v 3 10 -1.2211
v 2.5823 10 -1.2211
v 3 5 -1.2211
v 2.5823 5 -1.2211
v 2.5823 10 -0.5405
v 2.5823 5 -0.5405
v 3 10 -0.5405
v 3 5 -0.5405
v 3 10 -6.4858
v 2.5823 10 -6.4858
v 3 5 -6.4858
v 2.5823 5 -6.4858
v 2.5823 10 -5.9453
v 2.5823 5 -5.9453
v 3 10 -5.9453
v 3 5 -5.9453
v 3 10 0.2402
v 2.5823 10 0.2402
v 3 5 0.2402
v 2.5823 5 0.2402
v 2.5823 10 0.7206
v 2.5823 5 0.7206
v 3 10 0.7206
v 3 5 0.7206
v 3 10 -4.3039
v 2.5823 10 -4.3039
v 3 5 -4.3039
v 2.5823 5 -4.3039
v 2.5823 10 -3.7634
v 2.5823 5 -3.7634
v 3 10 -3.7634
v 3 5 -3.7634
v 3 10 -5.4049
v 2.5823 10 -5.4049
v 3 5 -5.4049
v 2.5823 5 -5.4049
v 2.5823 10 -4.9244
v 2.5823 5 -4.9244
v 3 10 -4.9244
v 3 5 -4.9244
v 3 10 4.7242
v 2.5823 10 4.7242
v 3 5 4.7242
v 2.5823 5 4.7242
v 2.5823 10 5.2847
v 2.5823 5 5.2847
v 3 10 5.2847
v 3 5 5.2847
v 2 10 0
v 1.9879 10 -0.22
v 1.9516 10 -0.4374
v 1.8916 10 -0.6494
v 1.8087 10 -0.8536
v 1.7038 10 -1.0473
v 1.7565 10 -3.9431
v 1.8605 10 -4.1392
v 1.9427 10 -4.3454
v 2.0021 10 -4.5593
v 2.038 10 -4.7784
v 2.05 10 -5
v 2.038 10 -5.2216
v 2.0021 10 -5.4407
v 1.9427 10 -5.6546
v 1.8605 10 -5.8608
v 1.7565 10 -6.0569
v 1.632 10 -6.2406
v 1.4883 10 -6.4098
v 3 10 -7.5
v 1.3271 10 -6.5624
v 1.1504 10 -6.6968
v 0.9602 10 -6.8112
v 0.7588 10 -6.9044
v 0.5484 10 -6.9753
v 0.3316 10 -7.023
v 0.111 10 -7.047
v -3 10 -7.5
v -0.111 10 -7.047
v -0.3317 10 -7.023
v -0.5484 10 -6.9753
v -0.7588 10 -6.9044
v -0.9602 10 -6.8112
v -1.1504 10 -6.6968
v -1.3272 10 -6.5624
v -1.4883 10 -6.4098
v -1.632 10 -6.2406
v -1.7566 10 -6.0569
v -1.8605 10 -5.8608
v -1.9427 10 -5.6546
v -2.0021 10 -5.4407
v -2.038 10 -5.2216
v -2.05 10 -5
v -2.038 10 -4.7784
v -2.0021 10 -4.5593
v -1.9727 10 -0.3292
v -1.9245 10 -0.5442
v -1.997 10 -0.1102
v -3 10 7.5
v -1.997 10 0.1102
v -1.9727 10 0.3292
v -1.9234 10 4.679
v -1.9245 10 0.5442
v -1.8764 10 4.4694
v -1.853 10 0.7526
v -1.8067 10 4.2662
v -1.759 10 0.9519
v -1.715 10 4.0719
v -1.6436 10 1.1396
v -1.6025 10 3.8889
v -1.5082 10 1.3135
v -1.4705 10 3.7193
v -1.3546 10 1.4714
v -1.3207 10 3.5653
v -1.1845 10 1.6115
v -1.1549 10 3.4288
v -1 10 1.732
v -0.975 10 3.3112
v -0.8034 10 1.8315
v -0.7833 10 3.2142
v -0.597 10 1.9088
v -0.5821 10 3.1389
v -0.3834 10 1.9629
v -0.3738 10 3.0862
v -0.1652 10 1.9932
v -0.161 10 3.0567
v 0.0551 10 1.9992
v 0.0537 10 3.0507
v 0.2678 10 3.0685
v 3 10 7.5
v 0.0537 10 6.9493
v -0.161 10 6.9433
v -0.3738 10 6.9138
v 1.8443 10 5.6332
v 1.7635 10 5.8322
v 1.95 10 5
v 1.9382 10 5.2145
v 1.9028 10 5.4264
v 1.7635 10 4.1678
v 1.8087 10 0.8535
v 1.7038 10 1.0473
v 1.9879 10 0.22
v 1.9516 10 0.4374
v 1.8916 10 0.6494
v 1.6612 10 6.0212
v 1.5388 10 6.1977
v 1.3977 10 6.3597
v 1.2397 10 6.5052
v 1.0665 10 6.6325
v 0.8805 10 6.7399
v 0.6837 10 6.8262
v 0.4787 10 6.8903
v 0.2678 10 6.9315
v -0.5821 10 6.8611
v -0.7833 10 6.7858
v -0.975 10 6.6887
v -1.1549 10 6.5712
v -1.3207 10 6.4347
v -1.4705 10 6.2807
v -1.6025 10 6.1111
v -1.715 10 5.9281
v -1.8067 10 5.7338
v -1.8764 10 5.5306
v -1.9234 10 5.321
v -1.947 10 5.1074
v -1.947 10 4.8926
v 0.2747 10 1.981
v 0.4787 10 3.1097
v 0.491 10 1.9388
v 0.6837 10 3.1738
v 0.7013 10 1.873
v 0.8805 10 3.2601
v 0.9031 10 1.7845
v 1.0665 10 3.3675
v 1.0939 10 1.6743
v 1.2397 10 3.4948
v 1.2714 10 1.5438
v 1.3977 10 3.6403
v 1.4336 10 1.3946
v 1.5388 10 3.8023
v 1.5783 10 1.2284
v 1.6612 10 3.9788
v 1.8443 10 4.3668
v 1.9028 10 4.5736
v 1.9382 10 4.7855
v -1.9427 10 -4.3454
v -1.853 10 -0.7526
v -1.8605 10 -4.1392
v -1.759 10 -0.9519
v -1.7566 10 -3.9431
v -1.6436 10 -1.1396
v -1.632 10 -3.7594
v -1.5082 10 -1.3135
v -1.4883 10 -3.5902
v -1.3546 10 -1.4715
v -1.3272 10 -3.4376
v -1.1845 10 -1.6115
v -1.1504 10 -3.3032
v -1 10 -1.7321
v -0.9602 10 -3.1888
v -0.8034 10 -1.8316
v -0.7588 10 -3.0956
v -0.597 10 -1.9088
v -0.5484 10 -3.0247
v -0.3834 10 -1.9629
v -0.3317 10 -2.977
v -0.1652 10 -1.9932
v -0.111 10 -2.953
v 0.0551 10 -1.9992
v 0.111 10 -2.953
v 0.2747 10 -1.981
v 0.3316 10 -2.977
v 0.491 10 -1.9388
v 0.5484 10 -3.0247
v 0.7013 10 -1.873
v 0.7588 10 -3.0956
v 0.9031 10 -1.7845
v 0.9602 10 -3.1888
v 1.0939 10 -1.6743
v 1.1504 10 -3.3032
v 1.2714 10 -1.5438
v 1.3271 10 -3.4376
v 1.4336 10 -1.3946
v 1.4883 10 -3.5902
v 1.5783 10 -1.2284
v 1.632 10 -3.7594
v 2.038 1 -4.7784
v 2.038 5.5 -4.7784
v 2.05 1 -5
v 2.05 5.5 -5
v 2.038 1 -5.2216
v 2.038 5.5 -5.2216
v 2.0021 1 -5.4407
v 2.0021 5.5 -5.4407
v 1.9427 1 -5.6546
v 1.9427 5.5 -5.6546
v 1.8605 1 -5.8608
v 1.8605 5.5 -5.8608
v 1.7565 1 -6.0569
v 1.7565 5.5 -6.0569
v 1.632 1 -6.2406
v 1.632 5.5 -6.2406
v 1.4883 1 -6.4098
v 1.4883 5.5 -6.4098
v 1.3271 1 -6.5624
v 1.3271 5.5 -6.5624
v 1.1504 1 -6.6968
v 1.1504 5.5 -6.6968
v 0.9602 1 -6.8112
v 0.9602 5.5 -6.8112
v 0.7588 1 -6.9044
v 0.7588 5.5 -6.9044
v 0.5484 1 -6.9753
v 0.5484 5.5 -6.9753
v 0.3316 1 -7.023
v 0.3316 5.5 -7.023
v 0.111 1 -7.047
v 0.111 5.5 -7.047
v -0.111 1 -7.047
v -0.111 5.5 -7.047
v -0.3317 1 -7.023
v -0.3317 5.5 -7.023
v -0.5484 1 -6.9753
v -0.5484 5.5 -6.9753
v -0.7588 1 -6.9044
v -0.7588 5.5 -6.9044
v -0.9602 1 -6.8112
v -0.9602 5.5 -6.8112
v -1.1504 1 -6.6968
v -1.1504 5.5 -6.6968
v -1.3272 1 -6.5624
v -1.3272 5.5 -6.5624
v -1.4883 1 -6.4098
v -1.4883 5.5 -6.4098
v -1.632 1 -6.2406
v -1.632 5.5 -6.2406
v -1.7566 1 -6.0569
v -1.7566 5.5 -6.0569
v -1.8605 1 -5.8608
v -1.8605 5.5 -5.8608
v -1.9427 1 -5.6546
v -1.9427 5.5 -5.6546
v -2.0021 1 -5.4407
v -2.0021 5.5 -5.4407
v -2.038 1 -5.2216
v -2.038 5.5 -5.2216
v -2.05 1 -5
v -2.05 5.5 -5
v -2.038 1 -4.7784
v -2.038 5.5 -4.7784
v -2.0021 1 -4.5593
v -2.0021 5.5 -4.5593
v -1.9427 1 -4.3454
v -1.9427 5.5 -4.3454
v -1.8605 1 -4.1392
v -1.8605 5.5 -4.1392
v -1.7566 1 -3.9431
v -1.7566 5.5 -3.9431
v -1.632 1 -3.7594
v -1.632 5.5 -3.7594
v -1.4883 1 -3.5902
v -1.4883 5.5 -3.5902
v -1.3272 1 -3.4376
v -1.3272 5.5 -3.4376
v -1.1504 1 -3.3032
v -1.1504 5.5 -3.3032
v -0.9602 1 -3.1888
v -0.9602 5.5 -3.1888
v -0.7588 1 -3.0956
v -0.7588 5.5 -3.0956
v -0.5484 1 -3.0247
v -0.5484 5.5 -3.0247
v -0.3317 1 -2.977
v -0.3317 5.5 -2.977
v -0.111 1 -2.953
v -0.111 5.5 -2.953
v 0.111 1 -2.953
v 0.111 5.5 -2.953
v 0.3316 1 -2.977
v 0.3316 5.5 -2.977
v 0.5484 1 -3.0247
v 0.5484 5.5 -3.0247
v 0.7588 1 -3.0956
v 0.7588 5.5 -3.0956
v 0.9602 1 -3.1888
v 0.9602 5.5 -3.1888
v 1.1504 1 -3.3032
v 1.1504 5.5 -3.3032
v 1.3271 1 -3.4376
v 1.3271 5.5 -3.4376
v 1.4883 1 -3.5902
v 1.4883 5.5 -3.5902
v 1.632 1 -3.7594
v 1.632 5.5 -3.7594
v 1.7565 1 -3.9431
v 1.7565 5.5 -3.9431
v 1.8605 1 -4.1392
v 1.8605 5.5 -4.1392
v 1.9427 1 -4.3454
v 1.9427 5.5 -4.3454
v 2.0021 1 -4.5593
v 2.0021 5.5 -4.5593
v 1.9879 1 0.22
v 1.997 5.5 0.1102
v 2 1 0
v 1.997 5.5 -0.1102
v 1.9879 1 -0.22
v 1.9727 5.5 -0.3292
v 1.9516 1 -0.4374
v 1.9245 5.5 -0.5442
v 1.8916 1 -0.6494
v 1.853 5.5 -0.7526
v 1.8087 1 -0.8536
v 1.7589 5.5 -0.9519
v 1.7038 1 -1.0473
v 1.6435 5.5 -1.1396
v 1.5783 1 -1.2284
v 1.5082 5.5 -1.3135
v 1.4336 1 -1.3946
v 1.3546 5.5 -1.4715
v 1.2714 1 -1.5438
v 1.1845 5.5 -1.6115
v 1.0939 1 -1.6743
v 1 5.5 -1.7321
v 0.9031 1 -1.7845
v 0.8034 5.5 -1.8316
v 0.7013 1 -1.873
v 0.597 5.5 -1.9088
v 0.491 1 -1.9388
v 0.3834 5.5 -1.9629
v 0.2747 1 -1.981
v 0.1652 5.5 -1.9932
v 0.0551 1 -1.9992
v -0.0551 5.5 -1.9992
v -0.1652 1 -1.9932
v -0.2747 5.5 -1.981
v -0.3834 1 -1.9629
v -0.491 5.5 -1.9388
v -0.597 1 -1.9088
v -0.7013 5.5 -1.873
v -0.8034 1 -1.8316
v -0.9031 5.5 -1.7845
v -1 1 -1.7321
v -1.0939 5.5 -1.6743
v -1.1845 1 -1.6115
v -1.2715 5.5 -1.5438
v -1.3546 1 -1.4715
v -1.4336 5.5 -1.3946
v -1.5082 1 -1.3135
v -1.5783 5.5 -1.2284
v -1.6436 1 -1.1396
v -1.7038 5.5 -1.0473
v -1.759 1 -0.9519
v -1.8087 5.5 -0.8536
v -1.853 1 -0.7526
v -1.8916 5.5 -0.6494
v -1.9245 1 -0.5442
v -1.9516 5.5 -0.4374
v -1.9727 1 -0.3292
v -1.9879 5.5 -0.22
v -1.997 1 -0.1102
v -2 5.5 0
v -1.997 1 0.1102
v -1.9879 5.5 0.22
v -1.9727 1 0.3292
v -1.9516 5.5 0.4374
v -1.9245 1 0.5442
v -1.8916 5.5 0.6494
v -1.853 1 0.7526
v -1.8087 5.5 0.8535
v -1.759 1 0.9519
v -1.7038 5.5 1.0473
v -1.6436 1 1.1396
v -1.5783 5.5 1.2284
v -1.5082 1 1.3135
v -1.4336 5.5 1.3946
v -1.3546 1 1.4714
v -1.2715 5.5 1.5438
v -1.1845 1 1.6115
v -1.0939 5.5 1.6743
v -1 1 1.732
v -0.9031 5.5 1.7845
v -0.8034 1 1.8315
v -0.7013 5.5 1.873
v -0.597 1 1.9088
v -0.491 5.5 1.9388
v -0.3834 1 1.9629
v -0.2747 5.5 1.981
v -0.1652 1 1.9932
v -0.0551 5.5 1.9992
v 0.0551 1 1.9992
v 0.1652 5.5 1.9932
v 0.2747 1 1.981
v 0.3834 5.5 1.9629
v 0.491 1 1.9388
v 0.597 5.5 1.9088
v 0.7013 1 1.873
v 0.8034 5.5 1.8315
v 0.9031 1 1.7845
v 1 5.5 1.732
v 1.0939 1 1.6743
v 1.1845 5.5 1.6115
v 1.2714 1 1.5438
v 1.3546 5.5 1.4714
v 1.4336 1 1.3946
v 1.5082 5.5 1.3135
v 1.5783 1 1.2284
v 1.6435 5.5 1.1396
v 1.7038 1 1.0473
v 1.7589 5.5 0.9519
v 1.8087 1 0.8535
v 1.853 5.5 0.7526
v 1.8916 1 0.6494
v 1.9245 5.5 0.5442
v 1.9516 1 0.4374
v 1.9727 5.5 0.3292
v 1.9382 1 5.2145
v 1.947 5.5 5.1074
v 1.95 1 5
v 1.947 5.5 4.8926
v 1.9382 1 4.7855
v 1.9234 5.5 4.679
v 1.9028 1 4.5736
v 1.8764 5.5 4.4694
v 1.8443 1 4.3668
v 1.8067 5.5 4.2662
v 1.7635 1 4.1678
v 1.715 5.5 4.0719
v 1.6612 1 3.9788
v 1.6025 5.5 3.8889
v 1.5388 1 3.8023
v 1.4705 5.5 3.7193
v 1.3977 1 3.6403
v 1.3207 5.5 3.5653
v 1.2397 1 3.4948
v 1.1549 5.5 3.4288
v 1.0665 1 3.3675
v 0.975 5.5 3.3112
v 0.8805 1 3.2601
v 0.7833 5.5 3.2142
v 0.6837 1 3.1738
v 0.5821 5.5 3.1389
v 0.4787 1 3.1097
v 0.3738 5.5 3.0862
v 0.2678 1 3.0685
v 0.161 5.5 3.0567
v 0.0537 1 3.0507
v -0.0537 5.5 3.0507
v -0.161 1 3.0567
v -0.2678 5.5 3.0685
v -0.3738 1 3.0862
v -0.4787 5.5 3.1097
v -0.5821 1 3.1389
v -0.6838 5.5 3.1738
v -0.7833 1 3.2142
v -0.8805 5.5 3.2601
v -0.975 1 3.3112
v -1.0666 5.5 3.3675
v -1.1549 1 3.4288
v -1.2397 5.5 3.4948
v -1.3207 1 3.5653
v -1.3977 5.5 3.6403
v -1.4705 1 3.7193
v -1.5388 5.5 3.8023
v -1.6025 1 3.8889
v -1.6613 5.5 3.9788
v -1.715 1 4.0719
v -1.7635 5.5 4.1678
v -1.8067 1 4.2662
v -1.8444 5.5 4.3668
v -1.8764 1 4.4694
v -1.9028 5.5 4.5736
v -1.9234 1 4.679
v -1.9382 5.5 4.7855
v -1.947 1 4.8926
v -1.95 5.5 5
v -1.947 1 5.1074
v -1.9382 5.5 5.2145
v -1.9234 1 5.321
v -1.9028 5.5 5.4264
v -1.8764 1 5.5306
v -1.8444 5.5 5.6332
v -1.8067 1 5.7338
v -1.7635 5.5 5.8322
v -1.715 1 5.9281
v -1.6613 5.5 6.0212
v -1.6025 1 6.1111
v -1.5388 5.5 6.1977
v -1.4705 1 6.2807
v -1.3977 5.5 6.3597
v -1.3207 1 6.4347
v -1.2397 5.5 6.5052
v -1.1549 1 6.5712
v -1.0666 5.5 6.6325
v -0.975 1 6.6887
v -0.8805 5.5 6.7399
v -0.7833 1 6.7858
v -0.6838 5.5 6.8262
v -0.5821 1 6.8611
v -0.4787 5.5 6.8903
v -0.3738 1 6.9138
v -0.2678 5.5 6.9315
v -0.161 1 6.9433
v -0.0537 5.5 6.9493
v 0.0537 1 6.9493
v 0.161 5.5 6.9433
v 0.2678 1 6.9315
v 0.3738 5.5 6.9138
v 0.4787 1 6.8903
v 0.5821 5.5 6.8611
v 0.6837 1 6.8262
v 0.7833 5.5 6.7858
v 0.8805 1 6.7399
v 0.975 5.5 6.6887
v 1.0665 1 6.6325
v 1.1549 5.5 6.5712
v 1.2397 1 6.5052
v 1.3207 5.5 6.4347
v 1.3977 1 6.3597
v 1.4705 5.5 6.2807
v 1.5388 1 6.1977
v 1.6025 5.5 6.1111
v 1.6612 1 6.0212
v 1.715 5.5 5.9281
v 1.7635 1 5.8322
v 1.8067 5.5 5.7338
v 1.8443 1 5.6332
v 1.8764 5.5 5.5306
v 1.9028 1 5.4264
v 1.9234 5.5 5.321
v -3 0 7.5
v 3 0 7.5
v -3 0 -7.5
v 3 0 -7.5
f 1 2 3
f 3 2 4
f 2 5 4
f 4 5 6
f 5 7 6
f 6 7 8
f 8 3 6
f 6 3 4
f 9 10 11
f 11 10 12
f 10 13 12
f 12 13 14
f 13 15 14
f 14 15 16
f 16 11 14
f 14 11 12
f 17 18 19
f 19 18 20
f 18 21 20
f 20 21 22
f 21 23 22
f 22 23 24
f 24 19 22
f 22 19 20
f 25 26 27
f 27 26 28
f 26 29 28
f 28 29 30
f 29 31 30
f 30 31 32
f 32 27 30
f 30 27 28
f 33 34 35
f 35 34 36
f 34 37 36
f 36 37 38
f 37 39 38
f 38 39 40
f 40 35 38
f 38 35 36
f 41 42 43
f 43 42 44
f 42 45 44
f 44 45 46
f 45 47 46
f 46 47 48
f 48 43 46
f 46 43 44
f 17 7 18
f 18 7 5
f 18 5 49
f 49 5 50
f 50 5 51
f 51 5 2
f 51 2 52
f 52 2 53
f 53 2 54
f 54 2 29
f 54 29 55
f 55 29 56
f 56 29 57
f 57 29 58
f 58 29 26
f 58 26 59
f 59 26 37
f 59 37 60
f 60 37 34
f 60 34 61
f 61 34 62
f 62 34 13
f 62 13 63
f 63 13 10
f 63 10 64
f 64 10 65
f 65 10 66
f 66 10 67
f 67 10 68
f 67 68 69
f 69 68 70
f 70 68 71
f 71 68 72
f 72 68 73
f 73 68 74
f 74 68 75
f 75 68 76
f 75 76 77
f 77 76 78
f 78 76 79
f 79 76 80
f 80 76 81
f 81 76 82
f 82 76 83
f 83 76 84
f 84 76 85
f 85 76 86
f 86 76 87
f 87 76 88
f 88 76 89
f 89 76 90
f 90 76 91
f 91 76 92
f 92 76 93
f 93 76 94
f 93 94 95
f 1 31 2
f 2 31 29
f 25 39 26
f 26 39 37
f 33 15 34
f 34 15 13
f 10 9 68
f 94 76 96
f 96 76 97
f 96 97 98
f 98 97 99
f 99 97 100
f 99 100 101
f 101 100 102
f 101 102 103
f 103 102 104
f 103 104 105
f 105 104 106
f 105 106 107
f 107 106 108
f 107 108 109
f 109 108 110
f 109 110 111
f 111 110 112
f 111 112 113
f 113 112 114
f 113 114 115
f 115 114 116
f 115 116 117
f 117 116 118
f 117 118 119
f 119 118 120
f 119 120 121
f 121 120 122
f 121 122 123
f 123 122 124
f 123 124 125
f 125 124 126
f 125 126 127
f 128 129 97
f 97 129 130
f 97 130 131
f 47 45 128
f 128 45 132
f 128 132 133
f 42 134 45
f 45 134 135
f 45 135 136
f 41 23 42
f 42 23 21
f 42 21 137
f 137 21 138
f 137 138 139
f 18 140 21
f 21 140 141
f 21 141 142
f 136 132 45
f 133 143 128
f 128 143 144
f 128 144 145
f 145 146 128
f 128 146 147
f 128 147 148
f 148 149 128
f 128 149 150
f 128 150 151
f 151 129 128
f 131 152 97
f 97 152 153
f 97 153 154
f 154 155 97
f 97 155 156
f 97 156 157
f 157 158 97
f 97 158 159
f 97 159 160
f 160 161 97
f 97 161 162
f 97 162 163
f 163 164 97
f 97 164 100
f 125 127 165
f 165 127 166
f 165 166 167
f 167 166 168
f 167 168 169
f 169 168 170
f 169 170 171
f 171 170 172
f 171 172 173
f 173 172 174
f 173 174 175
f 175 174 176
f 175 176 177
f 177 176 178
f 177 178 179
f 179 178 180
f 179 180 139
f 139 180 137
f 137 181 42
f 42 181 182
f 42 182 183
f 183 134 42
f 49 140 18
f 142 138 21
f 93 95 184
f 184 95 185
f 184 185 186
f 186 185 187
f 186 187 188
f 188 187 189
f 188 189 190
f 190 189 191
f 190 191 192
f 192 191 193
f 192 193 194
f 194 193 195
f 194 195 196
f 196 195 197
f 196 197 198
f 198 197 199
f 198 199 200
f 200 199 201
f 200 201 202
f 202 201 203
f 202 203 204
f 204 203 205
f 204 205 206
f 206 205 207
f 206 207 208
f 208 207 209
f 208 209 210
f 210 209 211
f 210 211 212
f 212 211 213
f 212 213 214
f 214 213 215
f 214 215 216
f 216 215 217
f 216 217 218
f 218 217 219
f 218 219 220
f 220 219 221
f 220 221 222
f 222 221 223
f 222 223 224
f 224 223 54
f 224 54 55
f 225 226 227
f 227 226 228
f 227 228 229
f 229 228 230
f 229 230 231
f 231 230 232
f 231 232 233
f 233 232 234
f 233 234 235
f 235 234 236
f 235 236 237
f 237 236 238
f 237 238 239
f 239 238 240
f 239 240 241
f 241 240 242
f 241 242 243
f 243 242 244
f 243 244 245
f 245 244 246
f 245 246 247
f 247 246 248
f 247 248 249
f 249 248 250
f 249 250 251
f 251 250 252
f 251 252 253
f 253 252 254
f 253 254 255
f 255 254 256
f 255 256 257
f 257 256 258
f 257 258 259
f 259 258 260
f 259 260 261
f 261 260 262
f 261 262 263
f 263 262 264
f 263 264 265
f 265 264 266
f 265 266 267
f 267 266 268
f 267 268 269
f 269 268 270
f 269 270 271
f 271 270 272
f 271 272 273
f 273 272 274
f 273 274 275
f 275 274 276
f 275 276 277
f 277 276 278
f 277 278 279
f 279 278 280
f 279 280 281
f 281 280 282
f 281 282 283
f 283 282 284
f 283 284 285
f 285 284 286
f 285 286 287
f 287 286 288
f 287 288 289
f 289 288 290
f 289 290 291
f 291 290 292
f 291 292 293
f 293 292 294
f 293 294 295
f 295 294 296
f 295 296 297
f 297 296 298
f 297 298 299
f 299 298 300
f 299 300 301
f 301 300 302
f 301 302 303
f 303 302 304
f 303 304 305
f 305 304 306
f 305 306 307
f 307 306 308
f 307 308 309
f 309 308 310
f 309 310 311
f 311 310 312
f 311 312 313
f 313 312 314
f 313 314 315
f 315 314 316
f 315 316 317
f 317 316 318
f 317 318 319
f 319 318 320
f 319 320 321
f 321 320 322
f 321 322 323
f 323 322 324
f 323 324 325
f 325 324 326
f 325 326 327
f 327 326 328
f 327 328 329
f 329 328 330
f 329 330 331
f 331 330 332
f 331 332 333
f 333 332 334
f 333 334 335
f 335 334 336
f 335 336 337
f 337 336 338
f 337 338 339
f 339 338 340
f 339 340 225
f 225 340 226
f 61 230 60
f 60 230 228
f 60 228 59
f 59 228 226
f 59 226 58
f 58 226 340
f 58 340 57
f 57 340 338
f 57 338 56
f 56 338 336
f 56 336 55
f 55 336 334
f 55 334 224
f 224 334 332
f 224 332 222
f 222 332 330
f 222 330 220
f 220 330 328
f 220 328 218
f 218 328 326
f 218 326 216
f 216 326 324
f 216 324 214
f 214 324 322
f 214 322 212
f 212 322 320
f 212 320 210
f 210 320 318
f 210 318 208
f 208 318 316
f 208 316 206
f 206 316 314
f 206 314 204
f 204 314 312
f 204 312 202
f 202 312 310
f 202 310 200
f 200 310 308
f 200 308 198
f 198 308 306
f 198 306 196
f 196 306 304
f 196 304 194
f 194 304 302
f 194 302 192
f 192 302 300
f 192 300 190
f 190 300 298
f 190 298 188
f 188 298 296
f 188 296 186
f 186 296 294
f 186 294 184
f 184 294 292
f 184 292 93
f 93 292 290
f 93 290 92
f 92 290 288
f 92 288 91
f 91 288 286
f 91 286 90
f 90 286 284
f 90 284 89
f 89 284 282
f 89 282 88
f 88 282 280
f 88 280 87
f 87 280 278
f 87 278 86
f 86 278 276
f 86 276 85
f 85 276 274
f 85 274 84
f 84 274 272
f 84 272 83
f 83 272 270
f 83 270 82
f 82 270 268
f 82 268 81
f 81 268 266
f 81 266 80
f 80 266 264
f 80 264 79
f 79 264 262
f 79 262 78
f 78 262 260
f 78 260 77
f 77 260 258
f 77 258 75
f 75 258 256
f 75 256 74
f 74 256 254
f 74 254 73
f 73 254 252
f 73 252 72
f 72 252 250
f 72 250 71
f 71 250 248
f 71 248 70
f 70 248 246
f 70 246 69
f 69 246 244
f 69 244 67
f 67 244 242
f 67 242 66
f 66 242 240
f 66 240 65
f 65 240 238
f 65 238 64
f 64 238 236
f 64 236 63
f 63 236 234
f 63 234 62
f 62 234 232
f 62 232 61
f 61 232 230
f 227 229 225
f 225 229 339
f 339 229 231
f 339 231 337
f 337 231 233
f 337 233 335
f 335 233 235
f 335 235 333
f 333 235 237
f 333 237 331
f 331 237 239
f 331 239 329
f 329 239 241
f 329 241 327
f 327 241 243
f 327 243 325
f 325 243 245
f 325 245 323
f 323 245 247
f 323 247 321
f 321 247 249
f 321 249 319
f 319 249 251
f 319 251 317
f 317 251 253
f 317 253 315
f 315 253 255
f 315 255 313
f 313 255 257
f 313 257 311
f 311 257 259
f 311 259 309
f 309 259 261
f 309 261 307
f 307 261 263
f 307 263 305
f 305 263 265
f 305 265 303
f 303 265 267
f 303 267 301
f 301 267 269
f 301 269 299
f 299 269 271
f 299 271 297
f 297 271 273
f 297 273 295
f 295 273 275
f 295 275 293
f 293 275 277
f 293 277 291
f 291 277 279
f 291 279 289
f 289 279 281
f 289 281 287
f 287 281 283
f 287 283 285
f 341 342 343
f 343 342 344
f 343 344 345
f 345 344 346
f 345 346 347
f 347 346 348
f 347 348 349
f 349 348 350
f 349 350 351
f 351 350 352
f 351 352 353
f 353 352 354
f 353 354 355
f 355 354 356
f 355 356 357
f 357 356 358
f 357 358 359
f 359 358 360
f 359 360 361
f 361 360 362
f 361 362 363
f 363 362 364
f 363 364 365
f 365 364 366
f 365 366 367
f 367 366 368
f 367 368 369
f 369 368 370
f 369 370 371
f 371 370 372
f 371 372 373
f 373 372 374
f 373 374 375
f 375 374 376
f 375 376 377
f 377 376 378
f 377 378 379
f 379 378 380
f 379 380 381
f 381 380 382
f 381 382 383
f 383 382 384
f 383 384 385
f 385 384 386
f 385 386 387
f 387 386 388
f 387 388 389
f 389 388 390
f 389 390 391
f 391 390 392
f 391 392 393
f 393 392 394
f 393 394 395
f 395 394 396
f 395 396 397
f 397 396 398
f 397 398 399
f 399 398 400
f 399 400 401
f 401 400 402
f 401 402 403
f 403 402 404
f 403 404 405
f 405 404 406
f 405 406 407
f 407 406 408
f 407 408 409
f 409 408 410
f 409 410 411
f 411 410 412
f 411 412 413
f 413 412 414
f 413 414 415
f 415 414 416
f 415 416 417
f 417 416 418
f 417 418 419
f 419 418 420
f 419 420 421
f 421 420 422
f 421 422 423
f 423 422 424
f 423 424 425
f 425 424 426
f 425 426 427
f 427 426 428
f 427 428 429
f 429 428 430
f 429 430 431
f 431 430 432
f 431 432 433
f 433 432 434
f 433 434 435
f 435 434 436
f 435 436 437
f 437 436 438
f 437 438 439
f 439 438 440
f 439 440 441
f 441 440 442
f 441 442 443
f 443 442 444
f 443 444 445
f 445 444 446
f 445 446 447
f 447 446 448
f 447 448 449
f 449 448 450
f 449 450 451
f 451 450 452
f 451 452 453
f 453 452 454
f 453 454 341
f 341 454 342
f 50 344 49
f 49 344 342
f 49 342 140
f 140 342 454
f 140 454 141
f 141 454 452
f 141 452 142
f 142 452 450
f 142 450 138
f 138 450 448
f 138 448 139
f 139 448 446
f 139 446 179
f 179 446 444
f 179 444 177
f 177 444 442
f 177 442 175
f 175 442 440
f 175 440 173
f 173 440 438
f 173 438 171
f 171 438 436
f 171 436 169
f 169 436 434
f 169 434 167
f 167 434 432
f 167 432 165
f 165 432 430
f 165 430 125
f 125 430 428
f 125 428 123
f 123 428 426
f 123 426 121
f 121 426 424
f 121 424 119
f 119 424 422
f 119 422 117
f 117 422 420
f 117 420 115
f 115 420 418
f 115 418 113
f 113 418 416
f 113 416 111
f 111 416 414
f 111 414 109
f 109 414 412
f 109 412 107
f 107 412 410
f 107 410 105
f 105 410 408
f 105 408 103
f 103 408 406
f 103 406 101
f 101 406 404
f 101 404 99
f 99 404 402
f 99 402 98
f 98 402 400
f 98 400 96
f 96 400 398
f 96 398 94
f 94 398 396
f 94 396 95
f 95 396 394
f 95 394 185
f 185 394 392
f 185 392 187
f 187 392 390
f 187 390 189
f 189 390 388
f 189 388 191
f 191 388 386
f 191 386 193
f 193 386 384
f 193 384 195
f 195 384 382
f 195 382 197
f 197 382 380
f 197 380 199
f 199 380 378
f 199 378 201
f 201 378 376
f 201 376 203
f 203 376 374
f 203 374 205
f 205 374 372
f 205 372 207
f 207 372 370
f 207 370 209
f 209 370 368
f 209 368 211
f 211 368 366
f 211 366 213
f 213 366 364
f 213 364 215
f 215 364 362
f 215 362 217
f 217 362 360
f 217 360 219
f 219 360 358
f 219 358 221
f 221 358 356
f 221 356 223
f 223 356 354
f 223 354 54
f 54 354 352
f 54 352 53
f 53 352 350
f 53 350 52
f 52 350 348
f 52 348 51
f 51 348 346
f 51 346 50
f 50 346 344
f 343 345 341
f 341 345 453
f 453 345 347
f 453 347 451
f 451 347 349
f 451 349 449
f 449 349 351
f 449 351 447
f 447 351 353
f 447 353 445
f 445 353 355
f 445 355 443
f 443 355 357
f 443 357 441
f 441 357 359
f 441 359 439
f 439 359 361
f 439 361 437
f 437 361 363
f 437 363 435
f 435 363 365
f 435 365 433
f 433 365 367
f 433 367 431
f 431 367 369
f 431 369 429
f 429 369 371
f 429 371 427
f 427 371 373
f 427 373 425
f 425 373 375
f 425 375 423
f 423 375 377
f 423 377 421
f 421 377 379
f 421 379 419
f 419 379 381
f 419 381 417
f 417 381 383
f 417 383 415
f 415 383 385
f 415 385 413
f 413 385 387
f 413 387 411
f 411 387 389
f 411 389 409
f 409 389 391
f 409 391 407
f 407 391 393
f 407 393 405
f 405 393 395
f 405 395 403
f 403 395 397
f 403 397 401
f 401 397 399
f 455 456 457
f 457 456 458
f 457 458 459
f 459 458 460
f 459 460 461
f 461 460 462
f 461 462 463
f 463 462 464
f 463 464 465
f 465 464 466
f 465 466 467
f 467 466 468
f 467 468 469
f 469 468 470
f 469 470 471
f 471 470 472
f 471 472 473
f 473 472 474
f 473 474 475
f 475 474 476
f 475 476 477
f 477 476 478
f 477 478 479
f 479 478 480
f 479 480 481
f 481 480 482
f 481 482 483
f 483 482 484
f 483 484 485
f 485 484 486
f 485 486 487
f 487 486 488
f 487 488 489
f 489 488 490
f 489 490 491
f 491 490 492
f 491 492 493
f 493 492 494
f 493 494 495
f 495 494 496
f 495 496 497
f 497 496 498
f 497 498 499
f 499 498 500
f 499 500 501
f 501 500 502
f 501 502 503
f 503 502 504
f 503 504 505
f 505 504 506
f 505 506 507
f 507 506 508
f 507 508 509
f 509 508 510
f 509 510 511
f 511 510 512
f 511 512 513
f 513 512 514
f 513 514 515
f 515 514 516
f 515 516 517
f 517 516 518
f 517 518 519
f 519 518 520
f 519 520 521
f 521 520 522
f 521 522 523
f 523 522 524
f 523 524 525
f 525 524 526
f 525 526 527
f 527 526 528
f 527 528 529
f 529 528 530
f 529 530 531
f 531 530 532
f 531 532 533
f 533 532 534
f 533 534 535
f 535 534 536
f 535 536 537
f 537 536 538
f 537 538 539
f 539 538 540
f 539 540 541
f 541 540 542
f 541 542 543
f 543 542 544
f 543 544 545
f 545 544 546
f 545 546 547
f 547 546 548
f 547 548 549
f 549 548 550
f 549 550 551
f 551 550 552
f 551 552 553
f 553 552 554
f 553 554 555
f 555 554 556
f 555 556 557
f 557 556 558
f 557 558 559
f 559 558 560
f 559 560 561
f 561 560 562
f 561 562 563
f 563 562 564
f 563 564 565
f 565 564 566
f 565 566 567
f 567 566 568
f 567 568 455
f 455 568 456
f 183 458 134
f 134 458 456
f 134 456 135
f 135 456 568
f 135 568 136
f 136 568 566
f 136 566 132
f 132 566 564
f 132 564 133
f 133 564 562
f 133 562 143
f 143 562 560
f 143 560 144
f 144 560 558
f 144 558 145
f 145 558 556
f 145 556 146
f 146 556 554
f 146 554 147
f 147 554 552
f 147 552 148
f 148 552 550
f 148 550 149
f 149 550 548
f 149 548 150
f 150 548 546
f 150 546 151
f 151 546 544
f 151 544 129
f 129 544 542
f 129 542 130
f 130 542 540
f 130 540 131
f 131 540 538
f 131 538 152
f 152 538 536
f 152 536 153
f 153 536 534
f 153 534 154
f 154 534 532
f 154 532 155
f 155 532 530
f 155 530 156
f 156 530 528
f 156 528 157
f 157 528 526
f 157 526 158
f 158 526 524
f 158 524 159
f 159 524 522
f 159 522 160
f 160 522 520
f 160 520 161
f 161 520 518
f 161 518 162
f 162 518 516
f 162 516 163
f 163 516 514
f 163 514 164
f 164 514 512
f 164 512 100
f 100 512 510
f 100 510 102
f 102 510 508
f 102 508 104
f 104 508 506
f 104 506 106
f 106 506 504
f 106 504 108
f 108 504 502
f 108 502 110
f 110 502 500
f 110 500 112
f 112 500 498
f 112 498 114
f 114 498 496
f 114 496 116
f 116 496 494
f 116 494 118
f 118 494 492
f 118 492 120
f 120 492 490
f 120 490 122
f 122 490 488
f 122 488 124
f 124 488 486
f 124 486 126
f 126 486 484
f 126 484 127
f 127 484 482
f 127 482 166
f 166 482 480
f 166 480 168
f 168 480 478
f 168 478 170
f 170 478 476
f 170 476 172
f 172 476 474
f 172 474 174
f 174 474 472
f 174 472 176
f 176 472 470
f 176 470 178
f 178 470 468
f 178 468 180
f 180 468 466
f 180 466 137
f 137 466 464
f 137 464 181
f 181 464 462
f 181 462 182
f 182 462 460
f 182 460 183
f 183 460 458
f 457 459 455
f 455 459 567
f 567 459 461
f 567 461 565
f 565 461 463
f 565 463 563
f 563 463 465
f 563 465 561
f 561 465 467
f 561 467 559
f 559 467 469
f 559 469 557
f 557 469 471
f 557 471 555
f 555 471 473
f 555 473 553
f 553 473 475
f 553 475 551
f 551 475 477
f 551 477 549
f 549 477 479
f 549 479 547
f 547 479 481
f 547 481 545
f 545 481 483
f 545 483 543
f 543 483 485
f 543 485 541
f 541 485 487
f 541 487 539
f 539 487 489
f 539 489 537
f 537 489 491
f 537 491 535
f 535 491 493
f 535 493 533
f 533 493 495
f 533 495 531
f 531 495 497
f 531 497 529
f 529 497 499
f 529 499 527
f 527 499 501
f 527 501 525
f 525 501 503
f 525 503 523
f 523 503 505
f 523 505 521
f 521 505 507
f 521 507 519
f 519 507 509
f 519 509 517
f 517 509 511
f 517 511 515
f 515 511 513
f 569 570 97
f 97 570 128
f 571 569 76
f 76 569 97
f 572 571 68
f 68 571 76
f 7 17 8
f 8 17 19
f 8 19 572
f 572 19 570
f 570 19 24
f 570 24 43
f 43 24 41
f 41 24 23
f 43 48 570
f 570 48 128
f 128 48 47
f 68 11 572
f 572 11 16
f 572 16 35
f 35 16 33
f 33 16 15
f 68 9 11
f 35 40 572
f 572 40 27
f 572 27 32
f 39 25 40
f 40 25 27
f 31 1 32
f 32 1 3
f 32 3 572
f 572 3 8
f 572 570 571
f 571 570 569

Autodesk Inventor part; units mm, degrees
ref_plane "YZ Plane" through (0, 0, 0) normal (1, 0, 0) x (0, 1, 0)
ref_plane "XZ Plane" through (0, 0, 0) normal (0, 1, 0) x (-1, 0, 0)
ref_plane "XY Plane" through (0, 0, 0) normal (0, 0, 1) x (1, 0, 0)
sketch "Szkic1" plane through (0, 0, 0) normal (0, 1, 0) x (-1, 0, 0)
  line L0 (3, 7.5) -> (-3, 7.5)
  line L1 (-3, 7.5) -> (-3, -7.5)
  line L2 (-3, -7.5) -> (3, -7.5)
  line L3 (3, -7.5) -> (3, 7.5)
  point P0 (0, 0)
  point P1 (0, -7.5)
  point P2 (3, 0)
  dimension "d0" = 6
  dimension "d1" = 15
extrude "Wyciągnięcie proste1" add sketch "Szkic1" along normal blind 10
sketch "Szkic2" plane through (0, 10, 0) normal (0, 1, 0) x (1, 0, 0)
  circle A0 centre (0, -5) radius 1.95
  circle A1 centre (0, 0) radius 2
  circle A2 centre (0, 5) radius 2.05
  dimension "d4" = 3.9
  dimension "d5" = 4
  dimension "d6" = 4.1
  dimension "d7" = 5
  dimension "d8" = 5
extrude "Wyciągnięcie proste2" cut sketch "Szkic2" against normal blind 9
sketch "Szkic3" plane through (0, 10, 0) normal (0, 1, 0) x (1, 0, 0)
  line L0 (3, -7.5) -> (3, 7.5) projected
  line L1 (3, -5.2848) -> (2.5823, -5.2848)
  line L2 (2.5823, -5.2848) -> (2.5823, -4.7242)
  line L3 (2.5823, -4.7242) -> (3, -4.7242)
  line L4 (3, -4.7242) -> (3, -5.2848)
  line L5 (3, -0.7206) -> (2.5823, -0.7206)
  line L6 (2.5823, -0.7206) -> (2.5823, -0.2402)
  line L7 (2.5823, -0.2402) -> (3, -0.2402)
  line L8 (3, -0.2402) -> (3, -0.7206)
  line L9 (3, 0.5405) -> (2.5823, 0.5405)
  line L10 (2.5823, 0.5405) -> (2.5823, 1.2211)
  line L11 (2.5823, 1.2211) -> (3, 1.2211)
  line L12 (3, 1.2211) -> (3, 0.5405)
  line L13 (3, 3.7634) -> (2.5823, 3.7634)
  line L14 (2.5823, 3.7634) -> (2.5823, 4.3039)
  line L15 (2.5823, 4.3039) -> (3, 4.3039)
  line L16 (3, 4.3039) -> (3, 3.7634)
  line L17 (3, 4.9244) -> (2.5823, 4.9244)
  line L18 (2.5823, 4.9244) -> (2.5823, 5.4049)
  line L19 (2.5823, 5.4049) -> (3, 5.4049)
  line L20 (3, 5.4049) -> (3, 4.9244)
  line L21 (3, 5.9453) -> (2.5823, 5.9453)
  line L22 (2.5823, 5.9453) -> (2.5823, 6.4858)
  line L23 (2.5823, 6.4858) -> (3, 6.4858)
  line L24 (3, 6.4858) -> (3, 5.9453)
  point P0 (0, 0)
extrude "Wyciągnięcie proste3" cut sketch "Szkic3" against normal blind 5
properties part number "TEST"
